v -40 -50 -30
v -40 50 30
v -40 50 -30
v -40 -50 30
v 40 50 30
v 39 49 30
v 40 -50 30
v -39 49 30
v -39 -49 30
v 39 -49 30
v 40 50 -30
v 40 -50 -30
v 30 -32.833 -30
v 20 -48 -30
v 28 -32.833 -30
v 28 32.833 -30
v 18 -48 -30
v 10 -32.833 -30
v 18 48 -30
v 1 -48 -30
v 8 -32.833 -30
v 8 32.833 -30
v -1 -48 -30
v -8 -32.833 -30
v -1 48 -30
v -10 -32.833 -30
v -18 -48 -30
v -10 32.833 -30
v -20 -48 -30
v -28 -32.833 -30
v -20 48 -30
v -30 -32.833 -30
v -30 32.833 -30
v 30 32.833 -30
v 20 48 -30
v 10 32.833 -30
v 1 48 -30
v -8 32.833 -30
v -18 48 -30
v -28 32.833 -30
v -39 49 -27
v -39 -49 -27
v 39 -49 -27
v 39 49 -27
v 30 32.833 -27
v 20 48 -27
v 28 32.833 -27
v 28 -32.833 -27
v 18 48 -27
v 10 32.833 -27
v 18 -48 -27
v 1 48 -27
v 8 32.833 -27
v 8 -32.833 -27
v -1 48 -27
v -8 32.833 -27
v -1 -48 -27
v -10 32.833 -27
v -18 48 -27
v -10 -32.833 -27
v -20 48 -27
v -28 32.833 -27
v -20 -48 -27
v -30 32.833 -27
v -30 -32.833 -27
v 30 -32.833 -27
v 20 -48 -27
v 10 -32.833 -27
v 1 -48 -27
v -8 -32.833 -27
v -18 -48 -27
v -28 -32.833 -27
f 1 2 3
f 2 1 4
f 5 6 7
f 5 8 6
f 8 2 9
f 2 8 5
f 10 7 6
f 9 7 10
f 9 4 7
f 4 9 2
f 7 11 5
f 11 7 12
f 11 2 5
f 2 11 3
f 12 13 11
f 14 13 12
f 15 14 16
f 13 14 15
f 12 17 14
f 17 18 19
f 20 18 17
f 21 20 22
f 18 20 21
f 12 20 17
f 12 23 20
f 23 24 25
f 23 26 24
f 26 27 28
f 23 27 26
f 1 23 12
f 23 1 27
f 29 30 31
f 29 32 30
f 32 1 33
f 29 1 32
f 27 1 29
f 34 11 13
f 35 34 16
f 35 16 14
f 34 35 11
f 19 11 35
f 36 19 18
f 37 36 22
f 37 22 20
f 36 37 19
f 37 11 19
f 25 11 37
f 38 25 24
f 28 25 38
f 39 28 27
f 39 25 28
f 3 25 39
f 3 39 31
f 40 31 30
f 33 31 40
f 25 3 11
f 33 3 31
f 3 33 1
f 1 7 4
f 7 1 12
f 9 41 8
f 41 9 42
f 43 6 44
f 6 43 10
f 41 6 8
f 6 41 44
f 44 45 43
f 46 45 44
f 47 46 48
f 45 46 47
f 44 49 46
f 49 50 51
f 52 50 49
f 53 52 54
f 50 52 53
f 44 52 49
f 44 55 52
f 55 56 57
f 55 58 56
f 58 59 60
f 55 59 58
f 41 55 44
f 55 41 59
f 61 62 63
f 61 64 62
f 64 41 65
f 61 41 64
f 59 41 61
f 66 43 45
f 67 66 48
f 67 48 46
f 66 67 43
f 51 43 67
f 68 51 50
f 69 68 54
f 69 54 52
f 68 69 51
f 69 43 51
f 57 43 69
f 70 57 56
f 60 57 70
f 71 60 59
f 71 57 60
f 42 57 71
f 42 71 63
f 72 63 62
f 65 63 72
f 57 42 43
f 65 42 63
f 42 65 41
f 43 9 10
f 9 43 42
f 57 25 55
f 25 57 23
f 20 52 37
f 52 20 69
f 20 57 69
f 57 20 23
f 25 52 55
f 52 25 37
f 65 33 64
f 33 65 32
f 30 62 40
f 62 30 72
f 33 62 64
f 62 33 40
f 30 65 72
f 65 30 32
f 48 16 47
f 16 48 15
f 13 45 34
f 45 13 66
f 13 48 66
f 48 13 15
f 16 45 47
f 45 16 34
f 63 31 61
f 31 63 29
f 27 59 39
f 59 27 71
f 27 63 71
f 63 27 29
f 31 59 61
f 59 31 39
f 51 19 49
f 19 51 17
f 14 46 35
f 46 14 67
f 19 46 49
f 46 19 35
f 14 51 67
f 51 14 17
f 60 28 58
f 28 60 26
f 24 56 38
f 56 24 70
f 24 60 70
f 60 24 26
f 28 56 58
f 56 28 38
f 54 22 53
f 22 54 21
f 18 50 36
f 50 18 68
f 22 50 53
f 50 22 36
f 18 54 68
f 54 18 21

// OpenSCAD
width = 80;
depth = 100;
height = 60;

thickness = 2;

difference() {
    difference() {
        cube([width, depth, height], center = true);
        translate([0, 0, thickness]) {
            cube([width - thickness, depth - thickness, height - thickness], center = true);
        }    
    }

    cube([thickness, depth - (thickness * 2), height], center = true);

    translate([-((width / 4) + (width / 8)  - thickness / 2), 0, 0 ]) {
        cube([thickness, (depth * 2/3) - (thickness / 2) , height], center = true);
    }

    translate([(width / 4) + (width / 8) - thickness / 2, 0, 0 ]) {
        cube([thickness, (depth * 2/3) - (thickness / 2) , height], center = true);
    }

    translate([-((width / 4) - thickness / 2), 0, 0 ]) {
        cube([thickness, depth - (thickness * 2) , height], center = true);
    }

    translate([(width / 4) - thickness / 2, 0, 0 ]) {
        cube([thickness, depth - (thickness * 2) , height], center = true);
    }

    translate([-((width / 8) - thickness / 2), 0, 0 ]) {
        cube([thickness, (depth * 2/3) - (thickness / 2) , height], center = true);
    }

    translate([(width / 8) - thickness / 2, 0, 0 ]) {
        cube([thickness, (depth * 2/3) - (thickness / 2) , height], center = true);
    }
}
